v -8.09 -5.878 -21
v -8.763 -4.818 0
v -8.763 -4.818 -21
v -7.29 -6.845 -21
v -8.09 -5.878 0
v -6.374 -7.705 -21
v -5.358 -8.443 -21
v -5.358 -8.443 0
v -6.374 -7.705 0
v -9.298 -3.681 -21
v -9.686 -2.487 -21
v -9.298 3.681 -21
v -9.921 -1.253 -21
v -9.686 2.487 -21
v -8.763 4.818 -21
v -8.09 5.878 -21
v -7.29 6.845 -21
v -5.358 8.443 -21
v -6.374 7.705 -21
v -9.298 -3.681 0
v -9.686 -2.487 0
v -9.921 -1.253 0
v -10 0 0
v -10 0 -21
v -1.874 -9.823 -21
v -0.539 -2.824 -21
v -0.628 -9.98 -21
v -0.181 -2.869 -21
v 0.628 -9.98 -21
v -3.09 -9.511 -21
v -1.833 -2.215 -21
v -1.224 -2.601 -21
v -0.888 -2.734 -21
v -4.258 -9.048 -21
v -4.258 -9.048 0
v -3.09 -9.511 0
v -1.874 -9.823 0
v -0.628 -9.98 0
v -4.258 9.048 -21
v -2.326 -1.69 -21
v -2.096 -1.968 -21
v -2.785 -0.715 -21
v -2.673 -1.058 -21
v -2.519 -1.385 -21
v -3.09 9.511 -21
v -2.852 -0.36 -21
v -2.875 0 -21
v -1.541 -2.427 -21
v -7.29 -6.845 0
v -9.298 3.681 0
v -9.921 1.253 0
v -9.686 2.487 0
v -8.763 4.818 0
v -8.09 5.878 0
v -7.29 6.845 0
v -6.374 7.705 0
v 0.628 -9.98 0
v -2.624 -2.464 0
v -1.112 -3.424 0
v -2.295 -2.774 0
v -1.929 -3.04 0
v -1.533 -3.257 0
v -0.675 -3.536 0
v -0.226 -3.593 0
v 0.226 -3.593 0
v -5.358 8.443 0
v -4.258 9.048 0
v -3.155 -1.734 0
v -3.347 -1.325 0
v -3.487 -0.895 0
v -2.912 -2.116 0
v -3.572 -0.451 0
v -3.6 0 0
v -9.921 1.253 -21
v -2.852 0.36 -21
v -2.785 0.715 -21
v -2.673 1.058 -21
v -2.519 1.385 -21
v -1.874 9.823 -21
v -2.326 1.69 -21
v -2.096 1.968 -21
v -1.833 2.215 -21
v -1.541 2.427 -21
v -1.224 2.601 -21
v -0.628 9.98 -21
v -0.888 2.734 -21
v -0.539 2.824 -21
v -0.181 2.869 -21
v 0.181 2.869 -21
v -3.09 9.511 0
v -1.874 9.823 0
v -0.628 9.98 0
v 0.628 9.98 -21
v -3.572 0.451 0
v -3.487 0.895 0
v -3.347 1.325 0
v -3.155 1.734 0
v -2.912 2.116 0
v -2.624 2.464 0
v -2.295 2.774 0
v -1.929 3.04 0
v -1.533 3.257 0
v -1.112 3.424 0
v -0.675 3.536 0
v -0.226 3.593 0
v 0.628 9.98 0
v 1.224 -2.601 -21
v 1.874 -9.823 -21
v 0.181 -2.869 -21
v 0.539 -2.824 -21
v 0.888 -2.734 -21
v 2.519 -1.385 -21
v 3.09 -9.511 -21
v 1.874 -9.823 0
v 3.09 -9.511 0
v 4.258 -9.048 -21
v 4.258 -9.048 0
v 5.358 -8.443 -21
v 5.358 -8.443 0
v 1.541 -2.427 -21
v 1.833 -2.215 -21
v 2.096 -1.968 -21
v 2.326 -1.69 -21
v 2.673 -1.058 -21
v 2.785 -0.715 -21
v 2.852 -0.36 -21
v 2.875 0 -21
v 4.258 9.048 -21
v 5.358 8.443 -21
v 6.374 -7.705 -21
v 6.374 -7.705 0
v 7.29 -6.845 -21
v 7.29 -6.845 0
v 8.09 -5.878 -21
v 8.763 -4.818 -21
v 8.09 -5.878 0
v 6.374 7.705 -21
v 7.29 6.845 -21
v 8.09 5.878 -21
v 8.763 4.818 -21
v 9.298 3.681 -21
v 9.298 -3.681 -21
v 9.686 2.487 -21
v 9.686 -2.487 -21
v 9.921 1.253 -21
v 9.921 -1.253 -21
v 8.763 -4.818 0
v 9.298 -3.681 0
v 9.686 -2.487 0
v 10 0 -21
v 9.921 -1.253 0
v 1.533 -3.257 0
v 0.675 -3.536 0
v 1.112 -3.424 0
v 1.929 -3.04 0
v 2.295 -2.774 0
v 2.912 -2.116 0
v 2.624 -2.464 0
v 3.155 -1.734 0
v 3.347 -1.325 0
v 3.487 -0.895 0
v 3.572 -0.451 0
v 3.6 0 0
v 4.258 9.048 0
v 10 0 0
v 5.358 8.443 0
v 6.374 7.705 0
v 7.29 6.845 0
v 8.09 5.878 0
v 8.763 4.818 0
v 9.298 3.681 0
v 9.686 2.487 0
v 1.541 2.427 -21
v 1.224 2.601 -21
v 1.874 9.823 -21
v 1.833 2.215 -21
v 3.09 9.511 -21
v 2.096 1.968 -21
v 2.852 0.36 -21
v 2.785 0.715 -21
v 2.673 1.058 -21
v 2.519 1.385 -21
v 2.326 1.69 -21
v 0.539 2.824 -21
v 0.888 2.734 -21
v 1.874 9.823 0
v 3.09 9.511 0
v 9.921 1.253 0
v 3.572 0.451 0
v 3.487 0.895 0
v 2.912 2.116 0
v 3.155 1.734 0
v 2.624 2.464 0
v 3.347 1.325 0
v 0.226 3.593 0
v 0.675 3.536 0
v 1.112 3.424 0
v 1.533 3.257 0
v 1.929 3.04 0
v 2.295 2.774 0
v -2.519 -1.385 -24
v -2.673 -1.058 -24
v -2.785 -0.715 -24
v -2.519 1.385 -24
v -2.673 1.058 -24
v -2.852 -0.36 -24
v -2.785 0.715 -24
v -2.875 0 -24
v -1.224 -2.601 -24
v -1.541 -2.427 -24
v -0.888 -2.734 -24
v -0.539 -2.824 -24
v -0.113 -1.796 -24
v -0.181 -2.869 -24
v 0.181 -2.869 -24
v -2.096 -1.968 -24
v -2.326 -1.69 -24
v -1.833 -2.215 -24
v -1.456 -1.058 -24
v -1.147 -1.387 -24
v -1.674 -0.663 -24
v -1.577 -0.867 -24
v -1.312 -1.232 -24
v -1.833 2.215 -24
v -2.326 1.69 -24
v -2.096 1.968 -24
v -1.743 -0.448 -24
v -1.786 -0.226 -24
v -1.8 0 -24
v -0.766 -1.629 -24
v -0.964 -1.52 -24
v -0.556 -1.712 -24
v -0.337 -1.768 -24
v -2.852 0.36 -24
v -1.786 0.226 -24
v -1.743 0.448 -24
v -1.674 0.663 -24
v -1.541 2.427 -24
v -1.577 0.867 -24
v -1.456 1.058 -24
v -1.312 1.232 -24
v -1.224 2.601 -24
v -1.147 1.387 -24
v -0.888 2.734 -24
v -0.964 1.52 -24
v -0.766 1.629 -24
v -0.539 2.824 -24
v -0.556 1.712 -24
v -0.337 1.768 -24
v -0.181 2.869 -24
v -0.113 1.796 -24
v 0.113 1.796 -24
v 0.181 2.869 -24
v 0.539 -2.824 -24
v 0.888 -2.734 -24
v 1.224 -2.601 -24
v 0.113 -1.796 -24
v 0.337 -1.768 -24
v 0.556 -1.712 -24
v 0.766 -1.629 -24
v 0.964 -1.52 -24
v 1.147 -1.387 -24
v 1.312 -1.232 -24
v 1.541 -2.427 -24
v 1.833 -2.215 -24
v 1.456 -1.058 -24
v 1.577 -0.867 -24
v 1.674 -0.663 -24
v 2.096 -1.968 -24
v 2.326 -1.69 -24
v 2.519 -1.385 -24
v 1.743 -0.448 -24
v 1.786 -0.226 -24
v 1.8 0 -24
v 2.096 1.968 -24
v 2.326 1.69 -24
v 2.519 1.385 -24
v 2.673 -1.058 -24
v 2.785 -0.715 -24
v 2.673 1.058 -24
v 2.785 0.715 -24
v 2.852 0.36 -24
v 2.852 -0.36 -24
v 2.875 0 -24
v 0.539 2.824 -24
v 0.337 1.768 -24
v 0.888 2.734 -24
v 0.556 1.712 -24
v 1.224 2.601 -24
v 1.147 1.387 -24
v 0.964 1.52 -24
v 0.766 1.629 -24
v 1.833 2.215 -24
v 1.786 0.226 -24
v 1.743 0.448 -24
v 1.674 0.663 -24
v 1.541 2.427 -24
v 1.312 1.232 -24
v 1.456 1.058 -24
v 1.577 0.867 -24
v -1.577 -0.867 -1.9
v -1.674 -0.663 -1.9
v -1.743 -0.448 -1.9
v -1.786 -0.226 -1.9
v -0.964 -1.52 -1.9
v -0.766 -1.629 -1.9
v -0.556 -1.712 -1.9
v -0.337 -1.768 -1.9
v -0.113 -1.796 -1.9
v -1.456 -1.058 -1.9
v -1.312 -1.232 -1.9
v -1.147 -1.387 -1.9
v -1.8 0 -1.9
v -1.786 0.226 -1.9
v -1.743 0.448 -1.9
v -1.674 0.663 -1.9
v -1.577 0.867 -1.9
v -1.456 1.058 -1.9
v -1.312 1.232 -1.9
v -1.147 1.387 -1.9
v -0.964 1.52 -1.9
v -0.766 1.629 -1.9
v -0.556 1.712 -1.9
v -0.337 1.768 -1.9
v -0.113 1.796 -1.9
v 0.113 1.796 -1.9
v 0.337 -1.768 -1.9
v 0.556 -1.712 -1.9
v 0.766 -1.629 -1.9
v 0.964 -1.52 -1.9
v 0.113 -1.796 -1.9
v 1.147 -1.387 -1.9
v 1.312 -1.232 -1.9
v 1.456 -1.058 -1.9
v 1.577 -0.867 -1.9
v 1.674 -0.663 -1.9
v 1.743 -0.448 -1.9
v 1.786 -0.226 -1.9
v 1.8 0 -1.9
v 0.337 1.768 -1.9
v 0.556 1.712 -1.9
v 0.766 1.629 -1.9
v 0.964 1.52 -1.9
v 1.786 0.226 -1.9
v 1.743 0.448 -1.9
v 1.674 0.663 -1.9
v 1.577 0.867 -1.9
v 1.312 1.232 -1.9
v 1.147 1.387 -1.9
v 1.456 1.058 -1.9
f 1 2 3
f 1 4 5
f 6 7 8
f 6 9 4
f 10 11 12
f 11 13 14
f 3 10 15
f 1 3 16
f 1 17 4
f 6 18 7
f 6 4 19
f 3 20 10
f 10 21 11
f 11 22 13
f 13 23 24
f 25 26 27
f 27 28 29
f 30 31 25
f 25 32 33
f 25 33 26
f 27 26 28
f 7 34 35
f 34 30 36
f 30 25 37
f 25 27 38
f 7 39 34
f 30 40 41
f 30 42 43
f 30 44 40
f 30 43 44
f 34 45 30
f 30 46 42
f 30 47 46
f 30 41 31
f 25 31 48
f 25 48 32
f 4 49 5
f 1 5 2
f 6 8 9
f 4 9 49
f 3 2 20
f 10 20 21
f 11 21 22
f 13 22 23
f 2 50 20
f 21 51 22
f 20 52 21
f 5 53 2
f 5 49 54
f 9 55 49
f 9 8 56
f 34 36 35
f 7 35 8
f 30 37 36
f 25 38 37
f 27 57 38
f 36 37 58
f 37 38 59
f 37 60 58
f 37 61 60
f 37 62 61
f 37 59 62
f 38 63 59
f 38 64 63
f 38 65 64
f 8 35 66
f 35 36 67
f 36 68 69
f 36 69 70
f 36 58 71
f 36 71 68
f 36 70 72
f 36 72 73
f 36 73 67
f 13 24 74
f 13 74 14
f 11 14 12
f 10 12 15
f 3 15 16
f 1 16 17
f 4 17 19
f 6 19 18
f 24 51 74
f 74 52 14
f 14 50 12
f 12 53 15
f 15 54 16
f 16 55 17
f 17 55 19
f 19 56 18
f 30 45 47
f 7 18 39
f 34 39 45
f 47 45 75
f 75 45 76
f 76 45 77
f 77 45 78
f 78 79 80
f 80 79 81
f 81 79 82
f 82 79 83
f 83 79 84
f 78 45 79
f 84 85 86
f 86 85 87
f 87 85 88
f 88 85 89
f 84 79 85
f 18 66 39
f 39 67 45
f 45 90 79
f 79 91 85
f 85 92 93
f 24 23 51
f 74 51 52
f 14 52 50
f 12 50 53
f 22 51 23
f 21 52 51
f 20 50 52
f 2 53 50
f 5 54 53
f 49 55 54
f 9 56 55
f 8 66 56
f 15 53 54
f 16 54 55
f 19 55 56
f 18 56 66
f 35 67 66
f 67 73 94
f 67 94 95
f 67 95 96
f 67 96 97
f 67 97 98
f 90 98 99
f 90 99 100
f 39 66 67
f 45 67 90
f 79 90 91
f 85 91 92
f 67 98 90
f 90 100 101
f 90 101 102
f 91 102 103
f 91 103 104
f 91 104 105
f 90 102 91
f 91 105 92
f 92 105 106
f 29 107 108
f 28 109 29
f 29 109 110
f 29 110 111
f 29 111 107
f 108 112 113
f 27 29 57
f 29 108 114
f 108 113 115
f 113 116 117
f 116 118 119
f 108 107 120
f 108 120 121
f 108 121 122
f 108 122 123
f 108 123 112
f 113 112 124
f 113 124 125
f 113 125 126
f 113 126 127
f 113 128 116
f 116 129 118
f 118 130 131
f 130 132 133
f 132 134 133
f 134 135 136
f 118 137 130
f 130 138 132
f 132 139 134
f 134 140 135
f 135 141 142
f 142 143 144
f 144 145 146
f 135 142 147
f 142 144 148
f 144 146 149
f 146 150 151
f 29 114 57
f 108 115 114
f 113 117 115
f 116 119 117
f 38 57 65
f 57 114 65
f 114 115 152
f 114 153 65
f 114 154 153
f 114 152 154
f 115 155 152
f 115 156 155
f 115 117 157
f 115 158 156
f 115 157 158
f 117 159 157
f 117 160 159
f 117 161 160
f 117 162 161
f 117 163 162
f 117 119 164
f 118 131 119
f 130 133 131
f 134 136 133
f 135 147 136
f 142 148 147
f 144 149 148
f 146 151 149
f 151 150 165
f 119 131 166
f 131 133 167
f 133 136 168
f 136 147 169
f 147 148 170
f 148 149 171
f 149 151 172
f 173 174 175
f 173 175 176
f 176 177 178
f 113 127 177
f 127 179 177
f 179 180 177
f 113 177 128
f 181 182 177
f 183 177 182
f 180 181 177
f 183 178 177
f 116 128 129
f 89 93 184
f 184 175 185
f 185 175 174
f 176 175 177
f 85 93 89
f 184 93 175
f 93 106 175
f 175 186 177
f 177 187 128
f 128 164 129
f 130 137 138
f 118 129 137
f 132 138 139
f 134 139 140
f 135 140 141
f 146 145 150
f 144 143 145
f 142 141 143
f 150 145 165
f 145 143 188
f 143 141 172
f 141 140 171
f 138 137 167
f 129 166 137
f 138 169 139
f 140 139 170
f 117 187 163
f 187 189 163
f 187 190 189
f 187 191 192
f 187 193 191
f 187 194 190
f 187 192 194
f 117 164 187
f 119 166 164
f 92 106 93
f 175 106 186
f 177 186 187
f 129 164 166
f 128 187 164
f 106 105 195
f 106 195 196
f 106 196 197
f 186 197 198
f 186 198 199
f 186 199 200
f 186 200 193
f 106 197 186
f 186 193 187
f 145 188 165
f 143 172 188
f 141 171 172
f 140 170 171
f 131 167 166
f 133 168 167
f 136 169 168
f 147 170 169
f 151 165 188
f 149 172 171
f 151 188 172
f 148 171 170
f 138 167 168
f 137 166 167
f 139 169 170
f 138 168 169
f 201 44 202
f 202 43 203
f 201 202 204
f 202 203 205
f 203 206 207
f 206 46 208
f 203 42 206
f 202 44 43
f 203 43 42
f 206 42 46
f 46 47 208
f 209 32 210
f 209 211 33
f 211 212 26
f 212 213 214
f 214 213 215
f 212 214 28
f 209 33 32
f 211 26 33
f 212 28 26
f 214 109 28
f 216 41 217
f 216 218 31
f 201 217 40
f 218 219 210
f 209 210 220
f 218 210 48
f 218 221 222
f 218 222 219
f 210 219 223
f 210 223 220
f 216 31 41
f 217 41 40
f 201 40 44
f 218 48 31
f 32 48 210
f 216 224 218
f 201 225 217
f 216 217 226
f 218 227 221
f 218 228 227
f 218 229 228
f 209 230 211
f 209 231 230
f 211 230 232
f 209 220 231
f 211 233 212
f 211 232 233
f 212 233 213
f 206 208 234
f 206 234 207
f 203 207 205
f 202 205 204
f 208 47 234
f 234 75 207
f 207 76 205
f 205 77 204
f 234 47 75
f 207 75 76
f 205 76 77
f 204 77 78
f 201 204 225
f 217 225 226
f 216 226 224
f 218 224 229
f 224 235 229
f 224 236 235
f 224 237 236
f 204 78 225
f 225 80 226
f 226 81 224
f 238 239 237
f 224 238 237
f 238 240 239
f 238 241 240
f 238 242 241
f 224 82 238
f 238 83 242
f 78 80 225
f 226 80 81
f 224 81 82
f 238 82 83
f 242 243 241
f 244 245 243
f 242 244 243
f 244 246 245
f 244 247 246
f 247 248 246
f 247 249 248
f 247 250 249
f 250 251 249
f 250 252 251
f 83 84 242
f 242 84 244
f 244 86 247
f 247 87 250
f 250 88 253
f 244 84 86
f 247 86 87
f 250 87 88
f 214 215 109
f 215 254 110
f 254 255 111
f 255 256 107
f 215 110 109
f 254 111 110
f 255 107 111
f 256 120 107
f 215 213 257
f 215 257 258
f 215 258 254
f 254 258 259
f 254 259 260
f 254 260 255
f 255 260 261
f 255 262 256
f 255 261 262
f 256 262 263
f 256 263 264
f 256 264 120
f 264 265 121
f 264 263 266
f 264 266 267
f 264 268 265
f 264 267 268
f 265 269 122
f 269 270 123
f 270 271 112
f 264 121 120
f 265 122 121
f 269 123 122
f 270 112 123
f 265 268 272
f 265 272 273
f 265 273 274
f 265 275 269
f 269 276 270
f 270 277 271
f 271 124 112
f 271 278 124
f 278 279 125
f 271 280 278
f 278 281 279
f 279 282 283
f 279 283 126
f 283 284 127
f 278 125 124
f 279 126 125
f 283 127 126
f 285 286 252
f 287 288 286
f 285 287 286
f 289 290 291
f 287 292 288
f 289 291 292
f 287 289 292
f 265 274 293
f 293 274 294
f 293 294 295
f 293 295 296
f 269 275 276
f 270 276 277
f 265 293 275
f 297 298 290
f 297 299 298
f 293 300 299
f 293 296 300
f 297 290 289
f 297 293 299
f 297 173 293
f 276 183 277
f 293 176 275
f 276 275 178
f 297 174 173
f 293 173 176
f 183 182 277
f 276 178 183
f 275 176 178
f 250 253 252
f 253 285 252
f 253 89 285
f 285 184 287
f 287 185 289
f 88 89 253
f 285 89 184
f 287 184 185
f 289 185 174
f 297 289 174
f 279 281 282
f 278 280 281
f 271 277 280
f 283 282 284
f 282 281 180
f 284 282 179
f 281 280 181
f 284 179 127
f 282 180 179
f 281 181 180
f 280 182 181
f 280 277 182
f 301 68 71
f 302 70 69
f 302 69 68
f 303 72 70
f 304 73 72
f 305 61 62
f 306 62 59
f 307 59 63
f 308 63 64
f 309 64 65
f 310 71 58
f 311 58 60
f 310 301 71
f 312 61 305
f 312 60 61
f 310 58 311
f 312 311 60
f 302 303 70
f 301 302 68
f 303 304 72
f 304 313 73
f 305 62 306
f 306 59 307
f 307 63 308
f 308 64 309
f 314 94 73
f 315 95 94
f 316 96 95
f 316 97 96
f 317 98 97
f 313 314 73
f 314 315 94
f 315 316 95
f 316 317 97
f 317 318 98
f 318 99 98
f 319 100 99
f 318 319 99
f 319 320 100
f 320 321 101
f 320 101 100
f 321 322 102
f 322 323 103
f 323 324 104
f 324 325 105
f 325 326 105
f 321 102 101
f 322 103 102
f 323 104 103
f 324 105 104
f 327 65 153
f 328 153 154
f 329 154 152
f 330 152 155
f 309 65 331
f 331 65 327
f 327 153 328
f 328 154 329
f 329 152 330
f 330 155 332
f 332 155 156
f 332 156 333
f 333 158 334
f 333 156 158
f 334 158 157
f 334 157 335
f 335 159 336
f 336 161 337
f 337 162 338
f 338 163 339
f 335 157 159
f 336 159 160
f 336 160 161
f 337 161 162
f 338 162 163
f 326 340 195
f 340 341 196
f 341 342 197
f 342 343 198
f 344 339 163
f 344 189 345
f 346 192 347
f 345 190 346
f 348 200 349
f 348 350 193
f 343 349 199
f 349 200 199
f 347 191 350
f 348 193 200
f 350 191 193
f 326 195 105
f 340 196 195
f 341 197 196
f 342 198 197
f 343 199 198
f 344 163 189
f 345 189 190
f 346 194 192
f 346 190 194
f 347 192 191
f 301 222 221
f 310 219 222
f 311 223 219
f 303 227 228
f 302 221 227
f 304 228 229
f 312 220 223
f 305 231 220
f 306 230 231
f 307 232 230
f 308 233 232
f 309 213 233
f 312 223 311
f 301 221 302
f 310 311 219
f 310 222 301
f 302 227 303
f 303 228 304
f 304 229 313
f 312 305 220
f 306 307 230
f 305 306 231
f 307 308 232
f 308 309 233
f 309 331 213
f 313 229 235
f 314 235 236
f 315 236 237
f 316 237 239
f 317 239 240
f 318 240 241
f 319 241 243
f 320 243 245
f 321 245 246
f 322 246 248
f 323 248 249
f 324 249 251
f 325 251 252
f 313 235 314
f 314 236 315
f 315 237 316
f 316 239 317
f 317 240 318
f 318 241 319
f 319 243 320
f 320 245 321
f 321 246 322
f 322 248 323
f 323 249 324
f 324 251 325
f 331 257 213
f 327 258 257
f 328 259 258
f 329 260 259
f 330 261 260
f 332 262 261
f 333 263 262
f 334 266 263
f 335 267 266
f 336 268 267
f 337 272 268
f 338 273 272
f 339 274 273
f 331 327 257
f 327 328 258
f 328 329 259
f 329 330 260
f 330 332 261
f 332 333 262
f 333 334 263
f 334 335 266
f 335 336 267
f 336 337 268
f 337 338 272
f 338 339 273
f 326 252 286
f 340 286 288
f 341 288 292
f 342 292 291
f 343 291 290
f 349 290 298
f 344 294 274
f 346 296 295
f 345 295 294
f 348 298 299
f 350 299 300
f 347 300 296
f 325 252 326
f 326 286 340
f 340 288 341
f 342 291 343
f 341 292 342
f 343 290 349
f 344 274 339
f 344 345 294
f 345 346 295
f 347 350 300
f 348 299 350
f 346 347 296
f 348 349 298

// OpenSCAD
$fn = 50;

difference() {
	union() {
		translate(v = [0, 0, -21.0]) {
			cylinder(h = 21, r = 10.0);
		}
		#translate(v = [0, 0, -24.0]) {
			cylinder(h = 24, r = 2.875);
		}
	}
	union() {
		translate(v = [0, 0, 0]) {
			rotate(a = [0, 0, 0]) {
				difference() {
					union() {
						translate(v = [0, 0, -24.0]) {
							cylinder(h = 24, r = 1.5);
						}
						translate(v = [0, 0, -1.9]) {
							cylinder(h = 1.9, r1 = 1.8, r2 = 3.6);
						}
						translate(v = [0, 0, -24.0]) {
							cylinder(h = 24, r = 1.8);
						}
						translate(v = [0, 0, -24.0]) {
							cylinder(h = 24, r = 1.5);
						}
					}
					union();
				}
			}
		}
	}
}
